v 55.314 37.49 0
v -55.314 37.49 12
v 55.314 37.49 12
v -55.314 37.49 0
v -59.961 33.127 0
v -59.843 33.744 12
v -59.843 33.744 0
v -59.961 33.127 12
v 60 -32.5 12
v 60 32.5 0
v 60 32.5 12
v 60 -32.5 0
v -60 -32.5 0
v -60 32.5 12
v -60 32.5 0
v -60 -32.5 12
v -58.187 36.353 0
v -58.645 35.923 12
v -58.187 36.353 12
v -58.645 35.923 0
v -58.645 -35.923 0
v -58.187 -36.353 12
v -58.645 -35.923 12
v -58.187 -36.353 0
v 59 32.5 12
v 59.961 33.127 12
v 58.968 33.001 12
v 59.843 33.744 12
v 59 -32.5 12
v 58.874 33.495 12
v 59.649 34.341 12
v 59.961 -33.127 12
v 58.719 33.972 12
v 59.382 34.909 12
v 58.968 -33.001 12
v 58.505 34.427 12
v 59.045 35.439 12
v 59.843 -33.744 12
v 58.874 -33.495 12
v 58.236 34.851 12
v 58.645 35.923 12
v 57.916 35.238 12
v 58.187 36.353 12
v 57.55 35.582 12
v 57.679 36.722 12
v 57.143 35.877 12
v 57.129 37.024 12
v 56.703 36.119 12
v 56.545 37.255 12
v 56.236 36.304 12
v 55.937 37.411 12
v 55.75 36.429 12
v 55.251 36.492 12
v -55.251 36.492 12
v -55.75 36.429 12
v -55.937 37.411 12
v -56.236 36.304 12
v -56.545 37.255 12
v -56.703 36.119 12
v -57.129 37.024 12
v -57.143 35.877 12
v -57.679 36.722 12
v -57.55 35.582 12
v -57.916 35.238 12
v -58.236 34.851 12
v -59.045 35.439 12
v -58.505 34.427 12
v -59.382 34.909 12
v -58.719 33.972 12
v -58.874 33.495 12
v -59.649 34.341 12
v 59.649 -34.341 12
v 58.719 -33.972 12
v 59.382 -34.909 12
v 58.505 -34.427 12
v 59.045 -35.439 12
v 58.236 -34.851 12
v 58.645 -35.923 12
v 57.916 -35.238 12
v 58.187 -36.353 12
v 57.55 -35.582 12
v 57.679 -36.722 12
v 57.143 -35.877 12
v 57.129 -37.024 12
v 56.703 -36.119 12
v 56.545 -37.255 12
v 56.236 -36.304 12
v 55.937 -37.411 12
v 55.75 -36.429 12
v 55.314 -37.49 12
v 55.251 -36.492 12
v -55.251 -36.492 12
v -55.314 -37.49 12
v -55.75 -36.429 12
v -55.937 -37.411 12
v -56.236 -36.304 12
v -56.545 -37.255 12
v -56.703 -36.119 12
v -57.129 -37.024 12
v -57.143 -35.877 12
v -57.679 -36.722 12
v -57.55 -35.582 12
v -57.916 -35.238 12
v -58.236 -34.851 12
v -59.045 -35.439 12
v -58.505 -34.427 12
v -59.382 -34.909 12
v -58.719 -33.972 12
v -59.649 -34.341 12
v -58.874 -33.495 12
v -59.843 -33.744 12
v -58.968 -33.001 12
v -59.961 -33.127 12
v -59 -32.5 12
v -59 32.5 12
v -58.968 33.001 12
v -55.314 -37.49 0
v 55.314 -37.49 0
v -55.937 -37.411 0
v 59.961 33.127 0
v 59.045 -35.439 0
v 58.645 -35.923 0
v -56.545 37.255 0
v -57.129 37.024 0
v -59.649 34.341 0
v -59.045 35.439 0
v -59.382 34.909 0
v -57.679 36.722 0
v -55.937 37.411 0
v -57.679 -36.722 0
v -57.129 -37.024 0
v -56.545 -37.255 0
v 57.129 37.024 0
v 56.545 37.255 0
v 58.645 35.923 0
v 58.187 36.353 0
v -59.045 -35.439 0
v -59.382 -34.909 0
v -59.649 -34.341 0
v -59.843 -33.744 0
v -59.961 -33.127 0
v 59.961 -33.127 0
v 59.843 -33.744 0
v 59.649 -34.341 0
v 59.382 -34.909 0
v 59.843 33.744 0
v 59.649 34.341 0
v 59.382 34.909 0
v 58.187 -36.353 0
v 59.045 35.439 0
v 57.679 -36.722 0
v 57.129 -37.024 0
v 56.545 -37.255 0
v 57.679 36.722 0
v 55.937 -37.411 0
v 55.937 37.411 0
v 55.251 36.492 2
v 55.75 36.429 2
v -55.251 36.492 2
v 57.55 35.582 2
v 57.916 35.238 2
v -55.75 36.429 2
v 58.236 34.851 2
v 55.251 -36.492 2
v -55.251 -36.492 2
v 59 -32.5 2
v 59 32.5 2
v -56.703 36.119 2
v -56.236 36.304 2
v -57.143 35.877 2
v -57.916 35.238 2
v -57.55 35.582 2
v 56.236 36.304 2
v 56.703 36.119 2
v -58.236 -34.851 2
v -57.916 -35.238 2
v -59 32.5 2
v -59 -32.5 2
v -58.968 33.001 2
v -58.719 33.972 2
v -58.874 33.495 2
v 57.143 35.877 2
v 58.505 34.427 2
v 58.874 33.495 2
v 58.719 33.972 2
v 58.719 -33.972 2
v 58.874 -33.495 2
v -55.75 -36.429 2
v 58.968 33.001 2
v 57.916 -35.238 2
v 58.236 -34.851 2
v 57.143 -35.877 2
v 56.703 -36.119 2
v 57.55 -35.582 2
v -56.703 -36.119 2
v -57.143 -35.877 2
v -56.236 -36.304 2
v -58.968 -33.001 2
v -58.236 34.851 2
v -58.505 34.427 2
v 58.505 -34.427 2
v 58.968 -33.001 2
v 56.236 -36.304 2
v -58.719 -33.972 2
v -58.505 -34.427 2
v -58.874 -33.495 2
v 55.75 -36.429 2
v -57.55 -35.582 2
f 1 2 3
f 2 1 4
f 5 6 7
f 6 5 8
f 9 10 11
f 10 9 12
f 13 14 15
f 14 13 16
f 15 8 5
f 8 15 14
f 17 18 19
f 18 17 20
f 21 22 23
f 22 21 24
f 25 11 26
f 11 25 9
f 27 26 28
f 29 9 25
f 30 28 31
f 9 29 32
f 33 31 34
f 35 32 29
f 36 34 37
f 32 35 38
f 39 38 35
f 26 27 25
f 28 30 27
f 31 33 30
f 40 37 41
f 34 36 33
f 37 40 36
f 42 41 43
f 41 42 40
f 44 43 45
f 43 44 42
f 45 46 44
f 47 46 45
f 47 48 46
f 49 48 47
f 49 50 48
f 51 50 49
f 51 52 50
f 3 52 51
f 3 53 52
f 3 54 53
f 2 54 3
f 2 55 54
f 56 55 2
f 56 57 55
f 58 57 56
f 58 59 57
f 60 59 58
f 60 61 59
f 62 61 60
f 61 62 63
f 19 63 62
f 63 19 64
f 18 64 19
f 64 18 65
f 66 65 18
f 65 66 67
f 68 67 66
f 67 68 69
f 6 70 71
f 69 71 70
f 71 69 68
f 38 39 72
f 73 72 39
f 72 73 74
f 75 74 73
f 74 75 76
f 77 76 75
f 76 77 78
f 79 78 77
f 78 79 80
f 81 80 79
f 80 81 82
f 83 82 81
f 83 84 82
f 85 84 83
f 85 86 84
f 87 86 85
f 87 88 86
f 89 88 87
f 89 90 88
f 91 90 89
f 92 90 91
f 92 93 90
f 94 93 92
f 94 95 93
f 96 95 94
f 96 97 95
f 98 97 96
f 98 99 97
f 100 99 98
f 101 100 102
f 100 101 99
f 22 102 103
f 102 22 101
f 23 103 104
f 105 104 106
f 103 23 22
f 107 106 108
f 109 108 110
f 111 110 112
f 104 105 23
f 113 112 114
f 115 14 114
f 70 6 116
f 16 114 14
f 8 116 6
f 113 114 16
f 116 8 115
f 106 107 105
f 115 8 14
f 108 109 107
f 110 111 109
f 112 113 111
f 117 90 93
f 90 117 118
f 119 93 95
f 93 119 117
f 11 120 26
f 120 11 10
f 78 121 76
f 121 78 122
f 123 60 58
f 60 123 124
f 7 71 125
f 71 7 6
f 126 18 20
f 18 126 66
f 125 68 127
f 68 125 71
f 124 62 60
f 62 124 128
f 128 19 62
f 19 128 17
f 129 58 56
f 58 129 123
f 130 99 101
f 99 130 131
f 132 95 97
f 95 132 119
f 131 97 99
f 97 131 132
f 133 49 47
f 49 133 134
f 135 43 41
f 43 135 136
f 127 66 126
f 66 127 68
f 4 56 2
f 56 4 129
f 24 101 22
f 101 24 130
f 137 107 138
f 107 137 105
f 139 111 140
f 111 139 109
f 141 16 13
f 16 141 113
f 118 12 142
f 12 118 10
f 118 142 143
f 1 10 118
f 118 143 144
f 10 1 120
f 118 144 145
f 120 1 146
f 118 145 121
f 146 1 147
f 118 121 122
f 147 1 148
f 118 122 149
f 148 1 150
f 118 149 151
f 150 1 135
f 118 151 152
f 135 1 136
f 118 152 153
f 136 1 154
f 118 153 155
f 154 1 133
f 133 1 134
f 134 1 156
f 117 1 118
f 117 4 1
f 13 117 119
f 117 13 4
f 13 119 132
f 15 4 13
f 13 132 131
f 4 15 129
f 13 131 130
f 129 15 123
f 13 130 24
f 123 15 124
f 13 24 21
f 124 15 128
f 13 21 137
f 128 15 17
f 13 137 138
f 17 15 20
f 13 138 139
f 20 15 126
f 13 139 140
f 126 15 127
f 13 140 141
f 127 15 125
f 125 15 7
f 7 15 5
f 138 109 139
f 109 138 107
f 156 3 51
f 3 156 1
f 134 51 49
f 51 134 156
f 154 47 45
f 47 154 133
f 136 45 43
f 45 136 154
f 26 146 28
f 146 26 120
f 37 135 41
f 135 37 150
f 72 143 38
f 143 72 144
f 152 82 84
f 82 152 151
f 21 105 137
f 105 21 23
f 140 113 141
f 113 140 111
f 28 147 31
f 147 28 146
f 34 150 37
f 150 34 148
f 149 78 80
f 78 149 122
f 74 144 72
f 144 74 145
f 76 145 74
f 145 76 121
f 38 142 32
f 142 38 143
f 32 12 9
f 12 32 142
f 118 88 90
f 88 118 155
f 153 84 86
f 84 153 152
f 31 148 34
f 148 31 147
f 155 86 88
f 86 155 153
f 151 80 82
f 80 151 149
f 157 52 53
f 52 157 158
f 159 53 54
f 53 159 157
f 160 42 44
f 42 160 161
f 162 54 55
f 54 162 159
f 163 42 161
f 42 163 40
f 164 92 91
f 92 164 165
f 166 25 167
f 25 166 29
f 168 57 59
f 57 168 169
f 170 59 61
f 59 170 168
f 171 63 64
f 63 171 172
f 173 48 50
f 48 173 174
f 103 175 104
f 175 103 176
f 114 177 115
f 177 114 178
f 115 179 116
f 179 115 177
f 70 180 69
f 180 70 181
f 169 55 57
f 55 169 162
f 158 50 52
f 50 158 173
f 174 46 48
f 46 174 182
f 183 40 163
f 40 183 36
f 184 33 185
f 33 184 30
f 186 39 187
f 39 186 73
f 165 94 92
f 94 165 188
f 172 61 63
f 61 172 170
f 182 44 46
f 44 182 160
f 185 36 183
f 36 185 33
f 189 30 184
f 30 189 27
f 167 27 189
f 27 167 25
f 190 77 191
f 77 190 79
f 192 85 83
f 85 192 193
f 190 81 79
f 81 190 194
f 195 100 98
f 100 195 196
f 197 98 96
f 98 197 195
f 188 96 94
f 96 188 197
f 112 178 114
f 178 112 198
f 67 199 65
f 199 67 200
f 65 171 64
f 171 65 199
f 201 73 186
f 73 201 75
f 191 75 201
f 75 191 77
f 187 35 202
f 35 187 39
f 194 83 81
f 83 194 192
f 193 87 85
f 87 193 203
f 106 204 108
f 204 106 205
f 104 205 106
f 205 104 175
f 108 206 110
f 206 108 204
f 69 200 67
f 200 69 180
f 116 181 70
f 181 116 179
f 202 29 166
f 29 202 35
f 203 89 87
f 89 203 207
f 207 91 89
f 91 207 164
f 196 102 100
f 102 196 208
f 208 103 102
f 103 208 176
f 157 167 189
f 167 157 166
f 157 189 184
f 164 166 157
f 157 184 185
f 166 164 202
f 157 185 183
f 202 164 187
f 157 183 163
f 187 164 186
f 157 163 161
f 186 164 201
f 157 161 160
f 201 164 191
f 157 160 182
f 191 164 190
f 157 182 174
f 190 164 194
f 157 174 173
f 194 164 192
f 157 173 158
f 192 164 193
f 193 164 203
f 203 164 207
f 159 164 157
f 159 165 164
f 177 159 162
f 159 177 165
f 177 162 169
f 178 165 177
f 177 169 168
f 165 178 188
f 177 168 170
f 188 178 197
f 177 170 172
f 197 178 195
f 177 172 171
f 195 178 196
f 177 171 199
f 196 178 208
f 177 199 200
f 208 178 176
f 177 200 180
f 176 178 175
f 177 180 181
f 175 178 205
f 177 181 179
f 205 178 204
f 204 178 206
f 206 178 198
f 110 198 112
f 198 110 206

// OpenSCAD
$fn = 50;


difference() {
	union() {
		hull() {
			translate(v = [-55.0000000000, 32.5000000000, 0]) {
				cylinder(h = 12, r = 5);
			}
			translate(v = [55.0000000000, 32.5000000000, 0]) {
				cylinder(h = 12, r = 5);
			}
			translate(v = [-55.0000000000, -32.5000000000, 0]) {
				cylinder(h = 12, r = 5);
			}
			translate(v = [55.0000000000, -32.5000000000, 0]) {
				cylinder(h = 12, r = 5);
			}
		}
	}
	union() {
		translate(v = [0, 0, 2]) {
			hull() {
				translate(v = [-55.0000000000, 32.5000000000, 0]) {
					cylinder(h = 10, r = 4);
				}
				translate(v = [55.0000000000, 32.5000000000, 0]) {
					cylinder(h = 10, r = 4);
				}
				translate(v = [-55.0000000000, -32.5000000000, 0]) {
					cylinder(h = 10, r = 4);
				}
				translate(v = [55.0000000000, -32.5000000000, 0]) {
					cylinder(h = 10, r = 4);
				}
			}
		}
	}
}
